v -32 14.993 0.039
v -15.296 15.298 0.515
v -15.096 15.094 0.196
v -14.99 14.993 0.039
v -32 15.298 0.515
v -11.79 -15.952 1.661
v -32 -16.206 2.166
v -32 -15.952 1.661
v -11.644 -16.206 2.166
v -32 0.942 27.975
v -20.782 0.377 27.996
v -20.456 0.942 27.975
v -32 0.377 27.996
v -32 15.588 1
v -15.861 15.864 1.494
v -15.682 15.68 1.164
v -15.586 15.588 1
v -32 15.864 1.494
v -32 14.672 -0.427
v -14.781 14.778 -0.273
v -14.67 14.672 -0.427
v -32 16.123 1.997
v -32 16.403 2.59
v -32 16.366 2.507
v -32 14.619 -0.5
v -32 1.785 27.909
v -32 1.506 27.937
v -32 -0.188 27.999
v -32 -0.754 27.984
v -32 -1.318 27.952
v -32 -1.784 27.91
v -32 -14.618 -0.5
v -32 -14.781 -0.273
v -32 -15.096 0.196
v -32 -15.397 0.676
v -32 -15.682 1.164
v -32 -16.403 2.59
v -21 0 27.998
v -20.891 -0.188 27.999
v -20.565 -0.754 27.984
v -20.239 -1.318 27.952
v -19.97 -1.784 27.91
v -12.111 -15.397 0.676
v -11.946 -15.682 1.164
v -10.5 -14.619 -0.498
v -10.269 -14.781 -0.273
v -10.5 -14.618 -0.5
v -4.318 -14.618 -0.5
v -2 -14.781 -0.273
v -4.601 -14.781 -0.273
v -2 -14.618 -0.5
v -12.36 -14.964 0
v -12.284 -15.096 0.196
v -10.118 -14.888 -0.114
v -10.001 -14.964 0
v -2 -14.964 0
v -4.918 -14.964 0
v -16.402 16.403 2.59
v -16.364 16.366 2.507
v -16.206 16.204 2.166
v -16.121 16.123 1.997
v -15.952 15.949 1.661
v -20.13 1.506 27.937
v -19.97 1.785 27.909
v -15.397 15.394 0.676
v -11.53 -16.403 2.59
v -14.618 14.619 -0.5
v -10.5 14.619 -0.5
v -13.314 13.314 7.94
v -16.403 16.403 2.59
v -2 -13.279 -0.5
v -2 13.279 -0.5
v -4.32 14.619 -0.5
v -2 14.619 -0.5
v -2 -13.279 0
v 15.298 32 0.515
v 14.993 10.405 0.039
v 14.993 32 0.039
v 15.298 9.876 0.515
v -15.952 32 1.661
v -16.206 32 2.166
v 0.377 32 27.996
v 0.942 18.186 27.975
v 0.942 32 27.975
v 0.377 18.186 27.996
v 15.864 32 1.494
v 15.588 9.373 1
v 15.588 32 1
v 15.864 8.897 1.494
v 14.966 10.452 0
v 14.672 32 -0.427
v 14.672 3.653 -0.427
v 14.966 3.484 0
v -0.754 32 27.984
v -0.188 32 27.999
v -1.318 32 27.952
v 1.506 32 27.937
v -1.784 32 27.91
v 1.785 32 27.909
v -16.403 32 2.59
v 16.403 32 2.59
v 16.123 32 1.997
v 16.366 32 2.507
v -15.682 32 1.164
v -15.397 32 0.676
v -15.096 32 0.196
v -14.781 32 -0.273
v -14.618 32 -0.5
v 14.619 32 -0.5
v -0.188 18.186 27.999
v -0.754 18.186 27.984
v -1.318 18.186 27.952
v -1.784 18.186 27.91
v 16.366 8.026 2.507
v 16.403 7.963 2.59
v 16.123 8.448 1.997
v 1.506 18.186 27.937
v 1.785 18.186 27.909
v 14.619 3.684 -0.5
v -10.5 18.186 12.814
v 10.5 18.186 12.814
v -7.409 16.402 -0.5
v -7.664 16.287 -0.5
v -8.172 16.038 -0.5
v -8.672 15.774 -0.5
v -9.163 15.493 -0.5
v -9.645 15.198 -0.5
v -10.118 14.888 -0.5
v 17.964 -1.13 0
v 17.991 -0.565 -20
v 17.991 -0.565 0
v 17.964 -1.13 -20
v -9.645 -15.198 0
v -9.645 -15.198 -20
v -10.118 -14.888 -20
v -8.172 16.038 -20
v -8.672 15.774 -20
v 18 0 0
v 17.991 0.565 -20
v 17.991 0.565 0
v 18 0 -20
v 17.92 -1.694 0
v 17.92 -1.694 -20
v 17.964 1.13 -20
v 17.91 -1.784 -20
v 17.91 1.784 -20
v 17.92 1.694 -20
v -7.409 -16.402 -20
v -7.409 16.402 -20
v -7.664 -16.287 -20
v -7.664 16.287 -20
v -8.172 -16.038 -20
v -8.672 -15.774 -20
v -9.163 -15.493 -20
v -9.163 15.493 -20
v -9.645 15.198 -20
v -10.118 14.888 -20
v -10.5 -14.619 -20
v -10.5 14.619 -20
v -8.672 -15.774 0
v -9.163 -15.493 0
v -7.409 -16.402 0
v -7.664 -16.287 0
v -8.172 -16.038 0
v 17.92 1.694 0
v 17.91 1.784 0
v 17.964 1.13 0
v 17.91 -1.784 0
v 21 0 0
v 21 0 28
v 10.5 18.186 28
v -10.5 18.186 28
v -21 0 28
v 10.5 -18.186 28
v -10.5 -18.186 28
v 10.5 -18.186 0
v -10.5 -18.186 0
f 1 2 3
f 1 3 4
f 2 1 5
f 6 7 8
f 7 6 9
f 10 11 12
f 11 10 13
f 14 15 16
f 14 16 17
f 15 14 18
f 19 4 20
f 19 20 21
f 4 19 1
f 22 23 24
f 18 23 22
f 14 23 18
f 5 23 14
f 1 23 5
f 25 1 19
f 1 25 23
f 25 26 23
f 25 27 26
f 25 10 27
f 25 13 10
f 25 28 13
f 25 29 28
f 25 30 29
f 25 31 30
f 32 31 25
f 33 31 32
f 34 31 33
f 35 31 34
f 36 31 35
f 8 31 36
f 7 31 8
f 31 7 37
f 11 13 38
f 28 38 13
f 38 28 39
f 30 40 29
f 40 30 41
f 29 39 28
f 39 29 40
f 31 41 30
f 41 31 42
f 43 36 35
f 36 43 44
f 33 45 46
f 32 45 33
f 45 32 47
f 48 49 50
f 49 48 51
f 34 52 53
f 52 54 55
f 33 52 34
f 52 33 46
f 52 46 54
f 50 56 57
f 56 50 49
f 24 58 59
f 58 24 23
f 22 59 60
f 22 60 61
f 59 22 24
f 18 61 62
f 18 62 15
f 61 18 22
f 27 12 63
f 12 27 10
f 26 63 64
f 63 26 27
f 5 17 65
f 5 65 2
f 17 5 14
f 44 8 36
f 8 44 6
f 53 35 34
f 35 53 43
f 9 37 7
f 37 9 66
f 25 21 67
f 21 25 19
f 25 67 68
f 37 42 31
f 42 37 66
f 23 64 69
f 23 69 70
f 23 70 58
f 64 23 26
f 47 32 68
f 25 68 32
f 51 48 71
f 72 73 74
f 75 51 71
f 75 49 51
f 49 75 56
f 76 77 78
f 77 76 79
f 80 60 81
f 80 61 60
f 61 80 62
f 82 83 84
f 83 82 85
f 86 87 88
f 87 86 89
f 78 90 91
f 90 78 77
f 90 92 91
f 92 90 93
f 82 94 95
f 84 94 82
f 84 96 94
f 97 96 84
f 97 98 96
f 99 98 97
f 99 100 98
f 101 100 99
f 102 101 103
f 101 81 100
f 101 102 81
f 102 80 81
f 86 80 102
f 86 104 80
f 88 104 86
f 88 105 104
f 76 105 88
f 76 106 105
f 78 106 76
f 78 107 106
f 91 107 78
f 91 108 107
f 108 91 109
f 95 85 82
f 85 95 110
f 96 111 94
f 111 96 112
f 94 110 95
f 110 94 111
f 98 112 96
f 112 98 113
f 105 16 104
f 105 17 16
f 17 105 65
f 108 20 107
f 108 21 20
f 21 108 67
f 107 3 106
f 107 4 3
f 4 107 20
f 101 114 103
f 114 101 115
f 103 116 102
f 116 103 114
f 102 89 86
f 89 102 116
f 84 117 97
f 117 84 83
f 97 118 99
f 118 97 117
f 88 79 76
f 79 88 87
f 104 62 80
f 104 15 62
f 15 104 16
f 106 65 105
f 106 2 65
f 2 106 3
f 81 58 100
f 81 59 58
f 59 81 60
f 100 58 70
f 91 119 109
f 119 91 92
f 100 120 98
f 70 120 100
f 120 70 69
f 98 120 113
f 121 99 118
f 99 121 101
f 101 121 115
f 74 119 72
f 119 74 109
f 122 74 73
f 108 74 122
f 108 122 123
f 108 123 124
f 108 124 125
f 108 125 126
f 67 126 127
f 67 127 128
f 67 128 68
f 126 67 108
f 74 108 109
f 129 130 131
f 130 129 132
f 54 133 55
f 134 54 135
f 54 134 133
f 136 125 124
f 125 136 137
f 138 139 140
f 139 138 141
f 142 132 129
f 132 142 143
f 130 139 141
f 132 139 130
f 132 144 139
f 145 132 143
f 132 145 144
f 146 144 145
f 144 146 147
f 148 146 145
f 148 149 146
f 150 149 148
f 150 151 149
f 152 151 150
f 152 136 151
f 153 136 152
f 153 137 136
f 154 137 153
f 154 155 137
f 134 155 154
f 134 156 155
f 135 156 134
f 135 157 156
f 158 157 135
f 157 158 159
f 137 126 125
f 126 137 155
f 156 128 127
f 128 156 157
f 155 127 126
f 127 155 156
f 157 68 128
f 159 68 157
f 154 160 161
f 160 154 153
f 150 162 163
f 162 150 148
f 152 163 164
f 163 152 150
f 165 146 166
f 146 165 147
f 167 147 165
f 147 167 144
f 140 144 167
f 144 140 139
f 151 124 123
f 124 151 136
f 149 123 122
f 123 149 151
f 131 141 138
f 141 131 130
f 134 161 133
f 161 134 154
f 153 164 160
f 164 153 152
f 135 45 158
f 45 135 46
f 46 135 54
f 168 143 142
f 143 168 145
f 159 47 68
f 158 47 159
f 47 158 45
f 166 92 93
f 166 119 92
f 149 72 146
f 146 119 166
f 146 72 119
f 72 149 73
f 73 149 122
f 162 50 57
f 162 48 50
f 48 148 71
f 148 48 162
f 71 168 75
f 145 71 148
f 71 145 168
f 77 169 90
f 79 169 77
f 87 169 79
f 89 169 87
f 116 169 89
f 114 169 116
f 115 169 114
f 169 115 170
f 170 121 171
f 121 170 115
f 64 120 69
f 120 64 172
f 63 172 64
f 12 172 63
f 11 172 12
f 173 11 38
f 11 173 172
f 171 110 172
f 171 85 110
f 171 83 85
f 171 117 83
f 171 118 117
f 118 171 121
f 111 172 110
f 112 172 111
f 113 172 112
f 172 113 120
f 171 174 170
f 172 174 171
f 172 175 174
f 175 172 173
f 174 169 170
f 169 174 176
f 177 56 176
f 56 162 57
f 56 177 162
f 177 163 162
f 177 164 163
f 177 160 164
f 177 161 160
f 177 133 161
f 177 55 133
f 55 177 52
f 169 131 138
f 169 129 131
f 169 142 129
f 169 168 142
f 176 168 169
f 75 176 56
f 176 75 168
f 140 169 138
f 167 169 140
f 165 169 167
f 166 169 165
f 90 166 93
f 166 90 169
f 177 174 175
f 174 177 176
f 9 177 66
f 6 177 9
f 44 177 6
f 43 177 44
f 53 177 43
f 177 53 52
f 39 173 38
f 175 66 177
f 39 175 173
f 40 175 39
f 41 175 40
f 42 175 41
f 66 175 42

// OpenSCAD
// 40 - 3.4 = 36.6
// 42 is circumcircle of above

module tri() {
  difference() {
    cylinder($fn=3, h=30, d=42);
    
    // round corners
    difference() {
      translate([0,0,-1])
      cylinder($fn=200, h=40, d=46);
      cylinder($fn=200, h=40, d=36);
    }
  }
}


cylinder($fn=6, h=28, d=42);

translate([-32, 0, 10])
rotate([0,0,90])
rotate([90,0,])
rotate([0,0,-30])
tri();


translate([0, 32, 10])
rotate([90,0,])
rotate([0,0,-30])
tri();

translate([0, 0, -20]) tri();
